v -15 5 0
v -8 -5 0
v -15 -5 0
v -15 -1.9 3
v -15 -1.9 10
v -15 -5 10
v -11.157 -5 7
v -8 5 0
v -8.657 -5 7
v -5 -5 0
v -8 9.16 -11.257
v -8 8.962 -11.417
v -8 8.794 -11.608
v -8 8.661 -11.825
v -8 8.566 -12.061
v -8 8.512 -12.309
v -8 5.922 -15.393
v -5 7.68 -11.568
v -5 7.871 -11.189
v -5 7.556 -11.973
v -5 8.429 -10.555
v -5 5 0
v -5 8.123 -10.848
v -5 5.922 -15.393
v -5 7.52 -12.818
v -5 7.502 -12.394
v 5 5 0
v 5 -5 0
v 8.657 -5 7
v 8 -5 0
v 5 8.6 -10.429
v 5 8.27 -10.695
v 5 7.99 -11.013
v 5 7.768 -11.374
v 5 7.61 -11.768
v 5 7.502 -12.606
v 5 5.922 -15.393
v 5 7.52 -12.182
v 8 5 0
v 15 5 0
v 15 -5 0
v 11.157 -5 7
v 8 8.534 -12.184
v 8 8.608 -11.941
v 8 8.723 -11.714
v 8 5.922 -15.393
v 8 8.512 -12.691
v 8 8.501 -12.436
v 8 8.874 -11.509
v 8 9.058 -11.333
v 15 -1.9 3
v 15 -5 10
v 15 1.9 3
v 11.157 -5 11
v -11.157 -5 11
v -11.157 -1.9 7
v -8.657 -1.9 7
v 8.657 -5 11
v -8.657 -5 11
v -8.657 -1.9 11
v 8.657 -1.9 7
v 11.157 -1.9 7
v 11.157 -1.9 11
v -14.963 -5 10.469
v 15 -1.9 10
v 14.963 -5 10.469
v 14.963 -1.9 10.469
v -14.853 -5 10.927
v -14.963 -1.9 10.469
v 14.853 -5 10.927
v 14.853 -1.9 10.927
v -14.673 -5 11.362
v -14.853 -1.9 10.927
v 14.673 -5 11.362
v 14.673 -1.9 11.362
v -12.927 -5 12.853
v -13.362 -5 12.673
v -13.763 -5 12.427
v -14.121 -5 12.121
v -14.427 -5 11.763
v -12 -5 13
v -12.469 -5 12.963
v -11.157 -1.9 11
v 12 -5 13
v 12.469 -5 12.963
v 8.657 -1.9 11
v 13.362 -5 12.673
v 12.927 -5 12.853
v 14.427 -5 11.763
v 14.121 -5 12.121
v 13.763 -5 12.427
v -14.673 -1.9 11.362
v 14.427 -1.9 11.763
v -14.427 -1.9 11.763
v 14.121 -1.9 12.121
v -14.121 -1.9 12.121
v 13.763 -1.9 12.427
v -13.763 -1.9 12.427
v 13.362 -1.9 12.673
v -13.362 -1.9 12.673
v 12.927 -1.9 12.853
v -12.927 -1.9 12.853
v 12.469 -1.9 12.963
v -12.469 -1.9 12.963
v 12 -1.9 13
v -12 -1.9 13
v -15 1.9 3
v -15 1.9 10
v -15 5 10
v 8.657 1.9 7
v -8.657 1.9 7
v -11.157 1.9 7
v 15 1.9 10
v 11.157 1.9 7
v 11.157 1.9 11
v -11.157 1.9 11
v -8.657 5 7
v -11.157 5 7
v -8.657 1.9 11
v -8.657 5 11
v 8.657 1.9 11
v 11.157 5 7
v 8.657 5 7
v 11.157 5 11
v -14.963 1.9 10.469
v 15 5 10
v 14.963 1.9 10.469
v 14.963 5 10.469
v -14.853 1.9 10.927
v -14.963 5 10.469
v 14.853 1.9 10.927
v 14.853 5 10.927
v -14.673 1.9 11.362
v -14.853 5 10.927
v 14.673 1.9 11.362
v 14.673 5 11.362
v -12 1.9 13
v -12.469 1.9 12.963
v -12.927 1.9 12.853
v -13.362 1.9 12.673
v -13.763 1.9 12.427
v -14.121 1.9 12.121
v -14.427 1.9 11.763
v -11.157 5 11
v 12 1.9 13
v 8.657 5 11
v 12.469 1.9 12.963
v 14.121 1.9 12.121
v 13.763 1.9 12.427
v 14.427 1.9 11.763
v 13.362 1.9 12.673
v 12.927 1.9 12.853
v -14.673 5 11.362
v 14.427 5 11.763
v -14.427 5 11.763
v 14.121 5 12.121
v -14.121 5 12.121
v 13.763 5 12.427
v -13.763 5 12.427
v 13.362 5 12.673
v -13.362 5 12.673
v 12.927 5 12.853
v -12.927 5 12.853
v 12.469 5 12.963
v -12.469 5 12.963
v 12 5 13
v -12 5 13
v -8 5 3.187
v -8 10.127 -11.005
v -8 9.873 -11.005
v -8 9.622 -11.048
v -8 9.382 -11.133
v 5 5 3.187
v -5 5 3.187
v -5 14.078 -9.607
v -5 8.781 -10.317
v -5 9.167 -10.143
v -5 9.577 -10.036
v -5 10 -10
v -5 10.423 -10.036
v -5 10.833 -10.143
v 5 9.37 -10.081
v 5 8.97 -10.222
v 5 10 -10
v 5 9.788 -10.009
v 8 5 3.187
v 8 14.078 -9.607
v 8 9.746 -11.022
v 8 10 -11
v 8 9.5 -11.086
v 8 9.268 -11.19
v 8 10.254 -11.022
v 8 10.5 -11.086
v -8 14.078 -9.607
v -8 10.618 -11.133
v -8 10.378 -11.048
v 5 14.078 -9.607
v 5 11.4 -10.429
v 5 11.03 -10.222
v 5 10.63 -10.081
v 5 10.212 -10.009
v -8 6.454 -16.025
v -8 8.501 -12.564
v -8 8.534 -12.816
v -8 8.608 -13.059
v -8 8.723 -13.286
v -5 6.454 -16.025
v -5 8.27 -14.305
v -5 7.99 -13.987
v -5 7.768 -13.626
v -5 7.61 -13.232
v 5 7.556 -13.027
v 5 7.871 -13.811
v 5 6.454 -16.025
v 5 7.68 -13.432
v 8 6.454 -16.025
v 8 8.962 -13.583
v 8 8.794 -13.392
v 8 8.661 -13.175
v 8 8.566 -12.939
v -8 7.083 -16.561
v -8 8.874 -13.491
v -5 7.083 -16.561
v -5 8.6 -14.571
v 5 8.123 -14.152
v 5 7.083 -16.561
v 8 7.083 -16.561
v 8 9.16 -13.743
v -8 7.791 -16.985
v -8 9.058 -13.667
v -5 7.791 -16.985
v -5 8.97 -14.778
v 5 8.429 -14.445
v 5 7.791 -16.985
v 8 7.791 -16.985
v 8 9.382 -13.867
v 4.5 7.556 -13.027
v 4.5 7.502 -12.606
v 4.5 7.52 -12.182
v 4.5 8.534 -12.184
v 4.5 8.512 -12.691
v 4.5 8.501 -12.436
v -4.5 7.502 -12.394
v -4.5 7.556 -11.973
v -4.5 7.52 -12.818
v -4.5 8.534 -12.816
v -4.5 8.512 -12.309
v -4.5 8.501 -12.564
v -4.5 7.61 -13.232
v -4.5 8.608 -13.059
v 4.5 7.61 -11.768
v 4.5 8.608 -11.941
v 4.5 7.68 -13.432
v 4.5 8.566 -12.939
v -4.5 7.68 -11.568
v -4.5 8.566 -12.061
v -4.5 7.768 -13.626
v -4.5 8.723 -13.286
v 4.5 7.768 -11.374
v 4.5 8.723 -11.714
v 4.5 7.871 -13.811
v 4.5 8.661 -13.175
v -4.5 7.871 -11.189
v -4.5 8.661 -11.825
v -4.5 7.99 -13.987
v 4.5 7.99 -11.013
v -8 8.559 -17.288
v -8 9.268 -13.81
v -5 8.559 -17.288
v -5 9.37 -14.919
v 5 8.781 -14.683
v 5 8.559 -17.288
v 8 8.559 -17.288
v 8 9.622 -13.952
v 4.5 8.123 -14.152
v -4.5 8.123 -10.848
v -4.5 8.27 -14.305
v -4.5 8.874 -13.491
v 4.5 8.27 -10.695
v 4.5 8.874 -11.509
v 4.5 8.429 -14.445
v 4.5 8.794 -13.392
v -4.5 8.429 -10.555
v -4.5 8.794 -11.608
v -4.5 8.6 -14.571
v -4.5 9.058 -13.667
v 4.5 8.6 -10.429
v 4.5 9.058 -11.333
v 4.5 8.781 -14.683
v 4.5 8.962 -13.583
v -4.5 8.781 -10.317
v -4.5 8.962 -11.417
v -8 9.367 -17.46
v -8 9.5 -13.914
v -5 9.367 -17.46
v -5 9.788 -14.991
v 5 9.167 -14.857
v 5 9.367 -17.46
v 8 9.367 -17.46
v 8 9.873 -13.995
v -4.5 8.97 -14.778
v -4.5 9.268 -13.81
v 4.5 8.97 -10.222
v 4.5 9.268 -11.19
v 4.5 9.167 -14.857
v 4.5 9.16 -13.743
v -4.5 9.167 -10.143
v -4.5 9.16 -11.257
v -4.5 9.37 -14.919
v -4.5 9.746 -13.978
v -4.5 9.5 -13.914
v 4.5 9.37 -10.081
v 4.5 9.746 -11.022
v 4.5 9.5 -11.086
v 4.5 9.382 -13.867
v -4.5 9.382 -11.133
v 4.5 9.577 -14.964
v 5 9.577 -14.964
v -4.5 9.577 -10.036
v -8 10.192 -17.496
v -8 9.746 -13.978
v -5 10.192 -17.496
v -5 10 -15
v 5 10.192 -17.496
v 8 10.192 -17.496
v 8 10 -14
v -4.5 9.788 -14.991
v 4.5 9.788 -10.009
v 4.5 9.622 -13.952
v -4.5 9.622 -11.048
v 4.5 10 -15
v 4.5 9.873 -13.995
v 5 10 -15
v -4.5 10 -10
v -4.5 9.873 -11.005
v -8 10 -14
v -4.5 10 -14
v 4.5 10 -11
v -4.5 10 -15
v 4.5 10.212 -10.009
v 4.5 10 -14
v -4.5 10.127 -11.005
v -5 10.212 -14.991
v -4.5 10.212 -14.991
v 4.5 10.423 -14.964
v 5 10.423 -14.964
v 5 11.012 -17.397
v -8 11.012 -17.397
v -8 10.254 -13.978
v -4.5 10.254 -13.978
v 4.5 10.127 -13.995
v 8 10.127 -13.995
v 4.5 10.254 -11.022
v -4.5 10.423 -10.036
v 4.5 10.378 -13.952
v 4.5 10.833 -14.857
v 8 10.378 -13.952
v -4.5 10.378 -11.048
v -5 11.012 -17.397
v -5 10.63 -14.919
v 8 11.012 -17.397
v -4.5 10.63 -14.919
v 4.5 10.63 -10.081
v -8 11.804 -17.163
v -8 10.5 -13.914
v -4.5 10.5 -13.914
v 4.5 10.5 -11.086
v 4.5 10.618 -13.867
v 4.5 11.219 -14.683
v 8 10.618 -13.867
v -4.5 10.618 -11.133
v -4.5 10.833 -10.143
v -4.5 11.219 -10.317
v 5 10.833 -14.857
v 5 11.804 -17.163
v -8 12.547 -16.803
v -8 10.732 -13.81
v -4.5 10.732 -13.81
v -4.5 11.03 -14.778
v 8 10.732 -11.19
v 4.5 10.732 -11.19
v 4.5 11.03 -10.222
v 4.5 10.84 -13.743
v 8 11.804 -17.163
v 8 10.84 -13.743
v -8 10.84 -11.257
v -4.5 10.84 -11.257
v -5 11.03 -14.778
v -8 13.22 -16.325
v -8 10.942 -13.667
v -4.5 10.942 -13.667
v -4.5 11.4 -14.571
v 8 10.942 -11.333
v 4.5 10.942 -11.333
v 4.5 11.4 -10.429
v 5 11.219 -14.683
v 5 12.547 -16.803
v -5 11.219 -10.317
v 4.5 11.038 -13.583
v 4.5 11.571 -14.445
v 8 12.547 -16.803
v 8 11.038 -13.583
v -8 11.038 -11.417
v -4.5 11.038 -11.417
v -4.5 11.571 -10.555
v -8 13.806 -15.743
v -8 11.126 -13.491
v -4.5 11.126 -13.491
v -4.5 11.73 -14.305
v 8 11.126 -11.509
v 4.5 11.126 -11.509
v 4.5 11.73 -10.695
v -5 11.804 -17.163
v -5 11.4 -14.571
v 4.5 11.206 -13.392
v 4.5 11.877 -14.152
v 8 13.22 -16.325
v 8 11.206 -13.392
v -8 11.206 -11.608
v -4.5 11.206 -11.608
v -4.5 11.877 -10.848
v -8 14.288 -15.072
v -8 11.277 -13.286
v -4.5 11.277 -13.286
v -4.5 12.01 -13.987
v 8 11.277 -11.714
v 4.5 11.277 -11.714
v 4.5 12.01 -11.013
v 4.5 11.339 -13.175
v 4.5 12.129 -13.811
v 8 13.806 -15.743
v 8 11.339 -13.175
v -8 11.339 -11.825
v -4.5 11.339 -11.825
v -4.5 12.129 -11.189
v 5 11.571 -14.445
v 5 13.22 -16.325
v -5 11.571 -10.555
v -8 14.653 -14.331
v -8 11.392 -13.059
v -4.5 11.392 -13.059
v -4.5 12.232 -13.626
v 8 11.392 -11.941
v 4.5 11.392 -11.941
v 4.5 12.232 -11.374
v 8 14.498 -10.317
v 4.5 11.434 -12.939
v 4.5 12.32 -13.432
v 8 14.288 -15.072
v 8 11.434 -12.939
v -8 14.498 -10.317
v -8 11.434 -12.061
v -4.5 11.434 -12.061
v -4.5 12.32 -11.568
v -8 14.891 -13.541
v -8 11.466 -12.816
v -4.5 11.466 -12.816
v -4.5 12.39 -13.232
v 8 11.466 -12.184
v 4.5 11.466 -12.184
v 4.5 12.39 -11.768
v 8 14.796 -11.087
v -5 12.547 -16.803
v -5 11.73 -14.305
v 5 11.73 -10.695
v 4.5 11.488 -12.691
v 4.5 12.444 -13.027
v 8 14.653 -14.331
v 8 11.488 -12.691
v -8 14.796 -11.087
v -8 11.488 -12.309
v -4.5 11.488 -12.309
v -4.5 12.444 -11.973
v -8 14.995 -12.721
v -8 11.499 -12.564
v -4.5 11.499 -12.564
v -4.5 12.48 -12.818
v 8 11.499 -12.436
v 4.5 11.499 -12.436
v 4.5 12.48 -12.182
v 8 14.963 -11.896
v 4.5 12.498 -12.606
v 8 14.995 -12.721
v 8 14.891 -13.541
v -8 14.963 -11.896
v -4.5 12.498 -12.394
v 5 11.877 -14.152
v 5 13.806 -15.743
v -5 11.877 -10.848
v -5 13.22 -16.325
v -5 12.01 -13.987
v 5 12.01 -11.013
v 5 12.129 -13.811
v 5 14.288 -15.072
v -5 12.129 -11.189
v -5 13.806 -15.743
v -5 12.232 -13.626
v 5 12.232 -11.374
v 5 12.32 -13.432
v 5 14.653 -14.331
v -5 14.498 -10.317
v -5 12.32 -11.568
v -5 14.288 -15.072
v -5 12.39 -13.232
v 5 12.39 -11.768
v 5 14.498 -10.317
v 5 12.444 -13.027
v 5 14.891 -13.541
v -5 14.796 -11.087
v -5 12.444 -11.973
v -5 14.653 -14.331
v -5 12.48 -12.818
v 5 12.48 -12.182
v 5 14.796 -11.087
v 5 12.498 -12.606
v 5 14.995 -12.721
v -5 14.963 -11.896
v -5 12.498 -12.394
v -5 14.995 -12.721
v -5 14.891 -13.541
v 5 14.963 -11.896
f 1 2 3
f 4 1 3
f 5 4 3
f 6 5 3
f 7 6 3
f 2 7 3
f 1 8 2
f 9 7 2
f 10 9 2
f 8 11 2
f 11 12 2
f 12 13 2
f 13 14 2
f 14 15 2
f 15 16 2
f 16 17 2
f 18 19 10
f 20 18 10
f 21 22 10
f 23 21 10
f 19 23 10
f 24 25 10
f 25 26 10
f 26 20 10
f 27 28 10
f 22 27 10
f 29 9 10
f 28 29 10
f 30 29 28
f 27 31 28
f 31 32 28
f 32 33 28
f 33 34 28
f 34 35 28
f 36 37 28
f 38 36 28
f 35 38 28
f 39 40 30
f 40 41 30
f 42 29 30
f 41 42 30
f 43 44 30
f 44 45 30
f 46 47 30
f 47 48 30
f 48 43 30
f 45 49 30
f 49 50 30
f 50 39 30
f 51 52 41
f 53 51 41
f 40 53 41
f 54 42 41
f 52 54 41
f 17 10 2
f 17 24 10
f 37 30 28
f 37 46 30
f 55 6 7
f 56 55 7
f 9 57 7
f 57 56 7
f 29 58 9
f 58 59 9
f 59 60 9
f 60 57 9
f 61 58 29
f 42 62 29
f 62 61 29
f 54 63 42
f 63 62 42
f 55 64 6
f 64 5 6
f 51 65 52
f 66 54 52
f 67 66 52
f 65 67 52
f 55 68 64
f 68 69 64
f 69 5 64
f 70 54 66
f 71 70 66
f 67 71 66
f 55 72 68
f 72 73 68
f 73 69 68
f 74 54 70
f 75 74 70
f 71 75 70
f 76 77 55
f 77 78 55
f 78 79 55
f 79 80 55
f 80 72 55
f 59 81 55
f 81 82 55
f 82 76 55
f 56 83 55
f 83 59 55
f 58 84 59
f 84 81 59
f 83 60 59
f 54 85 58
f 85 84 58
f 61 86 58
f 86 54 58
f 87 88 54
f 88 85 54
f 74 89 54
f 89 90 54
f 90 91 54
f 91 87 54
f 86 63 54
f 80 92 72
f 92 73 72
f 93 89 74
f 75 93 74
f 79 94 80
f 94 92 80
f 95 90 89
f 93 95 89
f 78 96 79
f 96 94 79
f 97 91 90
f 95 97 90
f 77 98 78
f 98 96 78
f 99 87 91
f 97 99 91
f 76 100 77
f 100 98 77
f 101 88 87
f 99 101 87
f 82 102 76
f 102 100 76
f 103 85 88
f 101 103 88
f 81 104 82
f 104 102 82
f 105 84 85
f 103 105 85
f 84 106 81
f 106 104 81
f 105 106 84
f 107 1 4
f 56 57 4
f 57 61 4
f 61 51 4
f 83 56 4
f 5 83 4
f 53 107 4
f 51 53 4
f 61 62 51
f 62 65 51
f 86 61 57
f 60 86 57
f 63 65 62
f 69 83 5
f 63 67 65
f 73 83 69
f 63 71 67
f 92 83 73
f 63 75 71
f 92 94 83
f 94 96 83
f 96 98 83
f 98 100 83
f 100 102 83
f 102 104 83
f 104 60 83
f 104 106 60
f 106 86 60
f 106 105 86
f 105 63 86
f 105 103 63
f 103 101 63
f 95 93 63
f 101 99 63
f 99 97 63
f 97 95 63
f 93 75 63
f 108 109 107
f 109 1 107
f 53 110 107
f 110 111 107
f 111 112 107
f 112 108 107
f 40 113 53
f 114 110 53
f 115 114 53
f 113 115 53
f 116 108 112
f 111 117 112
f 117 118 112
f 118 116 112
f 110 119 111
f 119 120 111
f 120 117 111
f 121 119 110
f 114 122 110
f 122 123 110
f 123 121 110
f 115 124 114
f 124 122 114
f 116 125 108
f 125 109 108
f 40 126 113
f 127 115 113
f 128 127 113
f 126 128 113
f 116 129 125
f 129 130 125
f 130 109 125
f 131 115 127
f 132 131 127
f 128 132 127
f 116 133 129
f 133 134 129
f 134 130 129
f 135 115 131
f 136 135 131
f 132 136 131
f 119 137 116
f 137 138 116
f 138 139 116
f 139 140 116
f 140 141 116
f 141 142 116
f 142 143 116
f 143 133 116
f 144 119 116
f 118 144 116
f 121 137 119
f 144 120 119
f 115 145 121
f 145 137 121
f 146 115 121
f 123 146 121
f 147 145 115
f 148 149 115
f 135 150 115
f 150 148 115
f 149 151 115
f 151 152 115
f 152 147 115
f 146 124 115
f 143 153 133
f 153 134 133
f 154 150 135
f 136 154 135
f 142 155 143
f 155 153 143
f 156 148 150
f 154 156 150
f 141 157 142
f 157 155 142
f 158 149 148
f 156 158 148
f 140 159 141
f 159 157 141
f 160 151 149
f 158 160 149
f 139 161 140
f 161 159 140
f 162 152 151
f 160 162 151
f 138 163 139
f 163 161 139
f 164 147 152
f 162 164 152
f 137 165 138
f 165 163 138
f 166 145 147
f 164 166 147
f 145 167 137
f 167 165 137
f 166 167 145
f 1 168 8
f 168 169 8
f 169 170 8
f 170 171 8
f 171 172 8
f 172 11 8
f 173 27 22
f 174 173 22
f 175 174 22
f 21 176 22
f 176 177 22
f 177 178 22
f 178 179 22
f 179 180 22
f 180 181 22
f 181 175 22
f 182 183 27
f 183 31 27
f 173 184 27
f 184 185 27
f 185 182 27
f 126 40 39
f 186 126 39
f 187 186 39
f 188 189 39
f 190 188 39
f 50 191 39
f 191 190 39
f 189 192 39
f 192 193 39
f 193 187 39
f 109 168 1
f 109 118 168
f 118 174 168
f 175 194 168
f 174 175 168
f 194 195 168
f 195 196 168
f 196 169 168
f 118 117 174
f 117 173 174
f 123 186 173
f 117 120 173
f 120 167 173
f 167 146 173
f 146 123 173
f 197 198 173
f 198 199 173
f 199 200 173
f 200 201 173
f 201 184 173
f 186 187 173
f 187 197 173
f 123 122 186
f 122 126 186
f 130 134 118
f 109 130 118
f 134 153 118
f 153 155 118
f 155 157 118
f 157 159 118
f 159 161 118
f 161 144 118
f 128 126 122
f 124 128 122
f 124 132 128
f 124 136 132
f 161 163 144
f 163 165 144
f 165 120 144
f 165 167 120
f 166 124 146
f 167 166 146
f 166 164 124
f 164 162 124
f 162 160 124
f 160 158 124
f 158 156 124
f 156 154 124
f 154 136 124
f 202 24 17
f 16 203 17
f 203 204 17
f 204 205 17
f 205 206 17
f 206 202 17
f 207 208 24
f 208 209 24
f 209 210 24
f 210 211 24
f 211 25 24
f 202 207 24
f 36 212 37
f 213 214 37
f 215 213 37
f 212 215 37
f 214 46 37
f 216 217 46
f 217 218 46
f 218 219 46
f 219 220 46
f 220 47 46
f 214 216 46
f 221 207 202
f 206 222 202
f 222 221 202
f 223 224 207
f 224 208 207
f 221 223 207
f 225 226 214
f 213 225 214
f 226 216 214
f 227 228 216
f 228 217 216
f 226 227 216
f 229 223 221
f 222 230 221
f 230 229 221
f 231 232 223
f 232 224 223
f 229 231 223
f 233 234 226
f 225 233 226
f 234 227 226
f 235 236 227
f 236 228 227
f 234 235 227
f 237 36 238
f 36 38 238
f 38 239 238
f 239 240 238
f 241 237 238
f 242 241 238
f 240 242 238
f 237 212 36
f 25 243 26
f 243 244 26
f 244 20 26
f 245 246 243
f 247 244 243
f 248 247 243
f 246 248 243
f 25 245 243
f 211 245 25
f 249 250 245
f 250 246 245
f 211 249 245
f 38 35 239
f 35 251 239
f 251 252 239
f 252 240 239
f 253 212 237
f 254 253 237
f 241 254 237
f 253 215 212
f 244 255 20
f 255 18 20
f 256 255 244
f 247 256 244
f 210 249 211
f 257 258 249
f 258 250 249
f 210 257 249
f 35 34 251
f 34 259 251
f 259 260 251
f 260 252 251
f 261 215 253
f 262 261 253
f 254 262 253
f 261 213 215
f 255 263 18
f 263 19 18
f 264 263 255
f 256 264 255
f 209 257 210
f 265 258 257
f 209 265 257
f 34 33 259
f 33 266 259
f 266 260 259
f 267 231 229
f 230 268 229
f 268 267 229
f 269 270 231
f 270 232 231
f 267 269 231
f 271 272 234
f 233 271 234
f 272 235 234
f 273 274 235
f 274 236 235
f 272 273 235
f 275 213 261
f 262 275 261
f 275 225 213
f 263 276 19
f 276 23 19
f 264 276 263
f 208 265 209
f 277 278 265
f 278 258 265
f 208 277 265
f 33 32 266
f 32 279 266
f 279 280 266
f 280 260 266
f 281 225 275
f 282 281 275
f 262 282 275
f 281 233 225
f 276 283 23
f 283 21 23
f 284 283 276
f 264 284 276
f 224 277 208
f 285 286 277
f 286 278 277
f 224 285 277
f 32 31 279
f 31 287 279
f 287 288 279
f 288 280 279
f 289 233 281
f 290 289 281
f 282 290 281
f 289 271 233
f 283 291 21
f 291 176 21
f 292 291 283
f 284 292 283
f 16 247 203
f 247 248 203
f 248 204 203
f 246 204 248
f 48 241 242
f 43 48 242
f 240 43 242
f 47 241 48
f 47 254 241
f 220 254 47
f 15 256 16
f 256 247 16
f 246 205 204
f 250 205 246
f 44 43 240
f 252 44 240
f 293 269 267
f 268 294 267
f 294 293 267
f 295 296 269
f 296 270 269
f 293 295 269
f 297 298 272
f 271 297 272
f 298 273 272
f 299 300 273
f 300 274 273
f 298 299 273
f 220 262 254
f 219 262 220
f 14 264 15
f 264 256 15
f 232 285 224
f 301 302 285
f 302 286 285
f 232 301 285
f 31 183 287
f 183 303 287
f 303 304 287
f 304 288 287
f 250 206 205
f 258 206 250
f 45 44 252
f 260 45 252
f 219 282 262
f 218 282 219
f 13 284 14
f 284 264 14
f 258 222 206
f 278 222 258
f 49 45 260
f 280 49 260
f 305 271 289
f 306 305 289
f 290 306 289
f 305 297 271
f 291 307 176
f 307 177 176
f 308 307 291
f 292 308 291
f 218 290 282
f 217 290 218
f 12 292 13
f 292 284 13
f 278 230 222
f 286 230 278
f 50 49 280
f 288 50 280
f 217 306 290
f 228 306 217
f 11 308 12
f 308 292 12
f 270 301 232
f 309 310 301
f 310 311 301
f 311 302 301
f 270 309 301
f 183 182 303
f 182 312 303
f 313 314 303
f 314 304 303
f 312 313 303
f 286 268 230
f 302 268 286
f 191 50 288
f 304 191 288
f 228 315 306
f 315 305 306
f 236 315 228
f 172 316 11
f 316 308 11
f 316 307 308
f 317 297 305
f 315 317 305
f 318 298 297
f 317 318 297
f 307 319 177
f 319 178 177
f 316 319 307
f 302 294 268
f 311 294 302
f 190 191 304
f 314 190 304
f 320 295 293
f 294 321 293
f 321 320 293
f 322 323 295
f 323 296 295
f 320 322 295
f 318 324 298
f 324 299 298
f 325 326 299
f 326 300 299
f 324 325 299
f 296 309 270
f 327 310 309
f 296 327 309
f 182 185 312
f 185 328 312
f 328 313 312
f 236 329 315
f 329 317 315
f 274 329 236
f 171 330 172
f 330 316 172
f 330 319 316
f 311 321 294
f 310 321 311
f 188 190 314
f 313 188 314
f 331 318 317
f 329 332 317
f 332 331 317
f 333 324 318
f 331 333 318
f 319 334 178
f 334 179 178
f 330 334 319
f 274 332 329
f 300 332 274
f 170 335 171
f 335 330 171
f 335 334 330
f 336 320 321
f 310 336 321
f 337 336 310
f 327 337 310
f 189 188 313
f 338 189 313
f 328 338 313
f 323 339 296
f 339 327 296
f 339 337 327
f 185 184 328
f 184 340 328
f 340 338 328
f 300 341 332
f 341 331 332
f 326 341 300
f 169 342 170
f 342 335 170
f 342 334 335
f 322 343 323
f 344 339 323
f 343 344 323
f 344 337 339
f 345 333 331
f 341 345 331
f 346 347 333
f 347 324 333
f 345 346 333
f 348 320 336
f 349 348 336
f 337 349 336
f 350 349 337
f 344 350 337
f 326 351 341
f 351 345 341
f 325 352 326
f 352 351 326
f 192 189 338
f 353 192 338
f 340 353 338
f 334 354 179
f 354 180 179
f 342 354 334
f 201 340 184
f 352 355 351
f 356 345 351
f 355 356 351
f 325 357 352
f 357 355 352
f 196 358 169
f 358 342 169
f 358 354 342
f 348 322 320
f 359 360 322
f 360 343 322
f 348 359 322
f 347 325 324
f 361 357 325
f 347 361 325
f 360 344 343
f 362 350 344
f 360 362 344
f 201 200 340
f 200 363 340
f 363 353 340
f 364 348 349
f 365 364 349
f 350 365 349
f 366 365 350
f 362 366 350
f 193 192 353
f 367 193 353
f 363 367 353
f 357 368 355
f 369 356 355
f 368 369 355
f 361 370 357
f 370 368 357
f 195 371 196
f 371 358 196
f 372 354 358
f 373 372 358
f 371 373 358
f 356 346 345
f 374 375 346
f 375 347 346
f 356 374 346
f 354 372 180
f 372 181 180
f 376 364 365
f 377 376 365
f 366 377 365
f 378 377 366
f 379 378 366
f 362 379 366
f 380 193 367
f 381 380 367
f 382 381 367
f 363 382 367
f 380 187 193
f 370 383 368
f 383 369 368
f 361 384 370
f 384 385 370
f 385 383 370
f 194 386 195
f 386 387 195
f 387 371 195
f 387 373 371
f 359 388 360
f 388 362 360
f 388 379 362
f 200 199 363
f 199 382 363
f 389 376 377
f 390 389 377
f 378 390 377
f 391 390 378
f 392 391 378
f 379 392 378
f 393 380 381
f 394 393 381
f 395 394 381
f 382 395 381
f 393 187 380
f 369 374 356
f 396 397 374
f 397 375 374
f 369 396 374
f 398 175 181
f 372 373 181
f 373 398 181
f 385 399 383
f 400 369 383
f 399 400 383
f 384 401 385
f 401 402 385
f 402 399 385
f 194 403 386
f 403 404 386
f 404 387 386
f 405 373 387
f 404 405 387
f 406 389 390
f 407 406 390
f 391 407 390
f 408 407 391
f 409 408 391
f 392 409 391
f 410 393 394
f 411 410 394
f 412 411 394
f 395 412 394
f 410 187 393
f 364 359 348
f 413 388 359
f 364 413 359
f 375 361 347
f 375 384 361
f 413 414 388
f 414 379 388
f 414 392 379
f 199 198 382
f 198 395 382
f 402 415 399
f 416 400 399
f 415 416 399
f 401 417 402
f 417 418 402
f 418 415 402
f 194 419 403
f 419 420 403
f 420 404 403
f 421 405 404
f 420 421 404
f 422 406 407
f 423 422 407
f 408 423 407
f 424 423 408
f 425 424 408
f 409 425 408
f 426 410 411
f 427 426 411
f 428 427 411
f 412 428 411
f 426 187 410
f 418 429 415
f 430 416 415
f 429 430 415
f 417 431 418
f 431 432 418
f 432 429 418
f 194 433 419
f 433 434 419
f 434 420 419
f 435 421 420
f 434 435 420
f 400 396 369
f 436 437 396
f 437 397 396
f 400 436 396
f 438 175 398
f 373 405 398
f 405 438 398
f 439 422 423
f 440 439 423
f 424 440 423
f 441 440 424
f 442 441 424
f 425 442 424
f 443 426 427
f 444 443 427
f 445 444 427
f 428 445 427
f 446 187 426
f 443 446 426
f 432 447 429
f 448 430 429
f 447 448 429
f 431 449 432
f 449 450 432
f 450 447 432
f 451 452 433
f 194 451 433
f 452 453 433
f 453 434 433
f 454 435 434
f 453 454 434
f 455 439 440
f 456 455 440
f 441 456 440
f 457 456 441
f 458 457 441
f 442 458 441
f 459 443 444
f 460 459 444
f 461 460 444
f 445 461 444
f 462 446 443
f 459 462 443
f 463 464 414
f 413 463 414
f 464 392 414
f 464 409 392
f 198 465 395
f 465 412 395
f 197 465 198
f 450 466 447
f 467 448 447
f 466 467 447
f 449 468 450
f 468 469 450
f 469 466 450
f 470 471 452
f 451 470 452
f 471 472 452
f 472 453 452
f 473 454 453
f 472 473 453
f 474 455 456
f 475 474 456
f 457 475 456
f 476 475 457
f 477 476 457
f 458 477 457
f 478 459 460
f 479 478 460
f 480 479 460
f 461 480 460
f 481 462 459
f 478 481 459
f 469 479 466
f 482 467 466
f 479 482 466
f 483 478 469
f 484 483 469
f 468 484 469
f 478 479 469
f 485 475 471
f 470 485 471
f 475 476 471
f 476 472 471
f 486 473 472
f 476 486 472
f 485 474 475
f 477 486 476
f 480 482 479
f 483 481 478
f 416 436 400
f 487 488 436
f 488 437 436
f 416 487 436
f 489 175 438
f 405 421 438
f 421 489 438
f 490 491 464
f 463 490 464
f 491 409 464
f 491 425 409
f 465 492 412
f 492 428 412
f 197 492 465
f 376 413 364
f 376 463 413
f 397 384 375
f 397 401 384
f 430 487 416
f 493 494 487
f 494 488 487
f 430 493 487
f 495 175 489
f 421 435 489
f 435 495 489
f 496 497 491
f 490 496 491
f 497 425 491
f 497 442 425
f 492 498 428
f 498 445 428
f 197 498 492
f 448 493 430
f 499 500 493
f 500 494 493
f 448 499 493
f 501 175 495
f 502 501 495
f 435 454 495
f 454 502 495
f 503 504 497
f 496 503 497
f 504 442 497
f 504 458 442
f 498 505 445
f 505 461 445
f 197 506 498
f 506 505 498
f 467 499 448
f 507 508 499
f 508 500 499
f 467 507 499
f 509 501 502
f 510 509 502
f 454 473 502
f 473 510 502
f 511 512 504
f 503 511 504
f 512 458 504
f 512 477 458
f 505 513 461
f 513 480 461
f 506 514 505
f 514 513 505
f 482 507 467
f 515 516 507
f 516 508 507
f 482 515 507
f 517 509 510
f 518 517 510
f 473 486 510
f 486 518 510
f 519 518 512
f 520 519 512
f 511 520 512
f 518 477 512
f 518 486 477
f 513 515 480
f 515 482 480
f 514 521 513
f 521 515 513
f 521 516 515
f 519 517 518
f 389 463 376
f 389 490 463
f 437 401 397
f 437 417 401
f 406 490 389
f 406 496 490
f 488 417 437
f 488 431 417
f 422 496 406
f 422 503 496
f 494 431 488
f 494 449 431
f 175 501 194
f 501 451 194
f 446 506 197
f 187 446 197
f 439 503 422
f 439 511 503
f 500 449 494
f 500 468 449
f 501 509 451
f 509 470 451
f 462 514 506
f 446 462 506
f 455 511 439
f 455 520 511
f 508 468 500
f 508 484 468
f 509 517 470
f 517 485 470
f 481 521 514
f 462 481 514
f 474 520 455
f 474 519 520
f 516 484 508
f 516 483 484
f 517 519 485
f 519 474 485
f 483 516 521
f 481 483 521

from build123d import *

# Parameters (mm, degrees)
ESBO_O1_W                  = 30
ESBO_O1_H                  = 10
RESSALTO_EXTRUS_O1_DEPTH   = 13
ESBO_O2_W                  = 30
ESBO_O2_H                  = 3.8
CORTE_EXTRUS_O1_DEPTH      = 10
FILETE1_R                  = 3
CORTE_EXTRUS_O2_DEPTH      = 23.226110771
CORTE_EXTRUS_O2_DEPTH_BACK = 23.226110771
ESBO_O3_W                  = 2.5
ESBO_O3_H                  = 4
ESBO_O4_W                  = 25
ESBO_O4_H                  = 25
RESSALTO_EXTRUS_O2_DEPTH   = 1.5
CHANFRO1_SIZE              = 5
CHANFRO1_SIZE_2            = 8.660254038
CHANFRO2_SIZE              = 7
CHANFRO2_SIZE2             = 4.041451884
ESBO_O5_R                  = 8.5
ESBO_O5_R_2                = 1
CORTE_EXTRUS_O3_DEPTH      = 3
FILETE2_R                  = 4
ESBO_O6_R                  = 1.5
RESSALTO_EXTRUS_O3_DEPTH   = 3
RESSALTO_EXTRUS_O4_START   = 0.5
ESBO_O7_R                  = 2.5
ESBO_O7_R_2                = 1.5
RESSALTO_EXTRUS_O4_DEPTH   = 0.5
CORTE_EXTRUS_O4_DEPTH      = 5


with BuildPart() as part:
    # Esboço1 → Ressalto-extrusão1 (new body)
    with BuildSketch(Plane.XY):
        Rectangle(ESBO_O1_W, ESBO_O1_H)
    extrude(amount=RESSALTO_EXTRUS_O1_DEPTH)

    # Esboço2 → Corte-extrusão1 (cut)
    with BuildSketch(Plane.XY.offset(13)):
        Rectangle(ESBO_O2_W, ESBO_O2_H)
    extrude(amount=-CORTE_EXTRUS_O1_DEPTH, mode=Mode.SUBTRACT)

    # Filete1
    filete1_edges = [part.edges().sort_by_distance(p)[0] for p in [
        (-15, 3.45, 13),
        (15, 3.45, 13),
        (-15, -3.45, 13),
        (15, -3.45, 13),
    ]]
    fillet(filete1_edges, radius=FILETE1_R)

    # Esboço3 → Corte-extrusão2 (cut, two sides: drawn at the far end of the back side and taken through both)
    with BuildSketch(Plane(origin=(0, 5, 0), x_dir=(1, 0, 0), z_dir=(0, 1, 0)).offset(-CORTE_EXTRUS_O2_DEPTH_BACK)):
        with Locations((9.906768391, -9)):
            Rectangle(ESBO_O3_W, ESBO_O3_H)
        with Locations((-9.906768391, -9)):
            Rectangle(ESBO_O3_W, ESBO_O3_H)
    extrude(amount=CORTE_EXTRUS_O2_DEPTH + CORTE_EXTRUS_O2_DEPTH_BACK, mode=Mode.SUBTRACT)

    # Esboço4 → Ressalto-extrusão2 (add, symmetric)
    with BuildSketch(Plane(origin=(13, 0, 0), x_dir=(0, 0, -1), z_dir=(1, 0, 0))):
        with Locations((12.5, 8.5)):
            Rectangle(ESBO_O4_W, ESBO_O4_H)
    extrude(amount=RESSALTO_EXTRUS_O2_DEPTH, both=True)

    # Chanfro1
    # the kernel refuses this chamfer: 8.660254038, 5 mm, written as the material it adds along each edge
    with BuildSketch(Plane(origin=(11.5, -4, 0), x_dir=(0, -0.9983227437537924, 0.05789386240267202), z_dir=(1, 0, 0))) as chanfro1_piece_1_section:
        Polygon((CHANFRO1_SIZE * 0.998322743754, CHANFRO1_SIZE * 0.0578938624027), (-CHANFRO1_SIZE_2 * 0.0578938624016, CHANFRO1_SIZE_2 * 0.998322743736), (0, 0), align=None)
    chanfro1_piece_1 = extrude(amount=3, mode=Mode.PRIVATE)
    chanfro1_piece_1 = split(chanfro1_piece_1, bisect_by=Plane(origin=(13, -5, -4.055902091), z_dir=(0, 1, 0)), keep=Keep.TOP, mode=Mode.PRIVATE)
    add(chanfro1_piece_1)

    # Chanfro2
    chanfro2_edges = [part.edges().sort_by_distance(p)[0] for p in [
        (13, 5, 0),
    ]]
    chanfro2_side = [part.faces().sort_by_distance(p)[0] for p in [
        (0, 5, 6.301932384),
    ]]
    chamfer(chanfro2_edges, length=CHANFRO2_SIZE, length2=CHANFRO2_SIZE2, reference=chanfro2_side[0])

    # Esboço5 → Corte-extrusão3 (cut)
    with BuildSketch(Plane.ZY.offset(-11.5)):
        with Locations((-12.5, 10)):
            Circle(ESBO_O5_R)
        with Locations((-20.2, 17.7)):
            Circle(ESBO_O5_R_2)
        with Locations((-4.8, 17.7)):
            Circle(ESBO_O5_R_2)
        with Locations((-4.8, 2.3)):
            Circle(ESBO_O5_R_2)
        with Locations((-20.2, 2.3)):
            Circle(ESBO_O5_R_2)
    extrude(amount=-CORTE_EXTRUS_O3_DEPTH, mode=Mode.SUBTRACT)

    # Filete2
    filete2_edges = [part.edges().sort_by_distance(p)[0] for p in [
        (13, 21, 0),
        (13, 21, -25),
        (13, -4, -25),
    ]]
    fillet(filete2_edges, radius=FILETE2_R)

    # Esboço6 → Ressalto-extrusão3 (add)
    with BuildSketch(Plane(origin=(-5, 0, 0), x_dir=(0, 0, -1), z_dir=(1, 0, 0))):
        with BuildLine():
            Line((9.606638802, 14.077800998), (-3.187293044, 5))
            Line((-3.187293044, 5), (0, 5))
            Line((0, 5), (0, -5))
            Line((0, -5), (15.393361198, 5.922199002))
            ThreePointArc((15.393361198, 5.922199002), (16.577800998, 12.893361198), (9.606638802, 14.077800998))
        make_face()
        with Locations((12.5, 10)):
            Circle(ESBO_O6_R, mode=Mode.SUBTRACT)
    ressalto_extrus_o3 = extrude(amount=-RESSALTO_EXTRUS_O3_DEPTH)

    # Esboço7 → Ressalto-extrusão4 (add)
    with BuildSketch(Plane(origin=(-5, 0, 0), x_dir=(0, 0, -1), z_dir=(1, 0, 0)).offset(RESSALTO_EXTRUS_O4_START)):
        with Locations((12.5, 10)):
            Circle(ESBO_O7_R)
        with Locations((12.5, 10)):
            Circle(ESBO_O7_R_2, mode=Mode.SUBTRACT)
    ressalto_extrus_o4 = extrude(amount=-RESSALTO_EXTRUS_O4_DEPTH)

    # Espelhar1: Ressalto-extrusão3, Ressalto-extrusão4 across plane
    add(ressalto_extrus_o3.mirror(Plane(origin=(0, 0, 0), x_dir=(0, 0, 1), z_dir=(1, 0, 0))))
    add(ressalto_extrus_o4.mirror(Plane(origin=(0, 0, 0), x_dir=(0, 0, 1), z_dir=(1, 0, 0))))

    # Esboço8 → Corte-extrusão4 (cut)
    with BuildSketch(Plane(origin=(15, 0, 0), x_dir=(0, 0, -1), z_dir=(1, 0, 0))):
        Polygon((-7.894114033, 22.521884482), (29.173309196, 22.521884482), (29.173309196, 5), (29.173309196, -5), (0, -5), (0, 5), (-7.894114033, 5), align=None)
    extrude(amount=-CORTE_EXTRUS_O4_DEPTH, mode=Mode.SUBTRACT)


solid = part.part
